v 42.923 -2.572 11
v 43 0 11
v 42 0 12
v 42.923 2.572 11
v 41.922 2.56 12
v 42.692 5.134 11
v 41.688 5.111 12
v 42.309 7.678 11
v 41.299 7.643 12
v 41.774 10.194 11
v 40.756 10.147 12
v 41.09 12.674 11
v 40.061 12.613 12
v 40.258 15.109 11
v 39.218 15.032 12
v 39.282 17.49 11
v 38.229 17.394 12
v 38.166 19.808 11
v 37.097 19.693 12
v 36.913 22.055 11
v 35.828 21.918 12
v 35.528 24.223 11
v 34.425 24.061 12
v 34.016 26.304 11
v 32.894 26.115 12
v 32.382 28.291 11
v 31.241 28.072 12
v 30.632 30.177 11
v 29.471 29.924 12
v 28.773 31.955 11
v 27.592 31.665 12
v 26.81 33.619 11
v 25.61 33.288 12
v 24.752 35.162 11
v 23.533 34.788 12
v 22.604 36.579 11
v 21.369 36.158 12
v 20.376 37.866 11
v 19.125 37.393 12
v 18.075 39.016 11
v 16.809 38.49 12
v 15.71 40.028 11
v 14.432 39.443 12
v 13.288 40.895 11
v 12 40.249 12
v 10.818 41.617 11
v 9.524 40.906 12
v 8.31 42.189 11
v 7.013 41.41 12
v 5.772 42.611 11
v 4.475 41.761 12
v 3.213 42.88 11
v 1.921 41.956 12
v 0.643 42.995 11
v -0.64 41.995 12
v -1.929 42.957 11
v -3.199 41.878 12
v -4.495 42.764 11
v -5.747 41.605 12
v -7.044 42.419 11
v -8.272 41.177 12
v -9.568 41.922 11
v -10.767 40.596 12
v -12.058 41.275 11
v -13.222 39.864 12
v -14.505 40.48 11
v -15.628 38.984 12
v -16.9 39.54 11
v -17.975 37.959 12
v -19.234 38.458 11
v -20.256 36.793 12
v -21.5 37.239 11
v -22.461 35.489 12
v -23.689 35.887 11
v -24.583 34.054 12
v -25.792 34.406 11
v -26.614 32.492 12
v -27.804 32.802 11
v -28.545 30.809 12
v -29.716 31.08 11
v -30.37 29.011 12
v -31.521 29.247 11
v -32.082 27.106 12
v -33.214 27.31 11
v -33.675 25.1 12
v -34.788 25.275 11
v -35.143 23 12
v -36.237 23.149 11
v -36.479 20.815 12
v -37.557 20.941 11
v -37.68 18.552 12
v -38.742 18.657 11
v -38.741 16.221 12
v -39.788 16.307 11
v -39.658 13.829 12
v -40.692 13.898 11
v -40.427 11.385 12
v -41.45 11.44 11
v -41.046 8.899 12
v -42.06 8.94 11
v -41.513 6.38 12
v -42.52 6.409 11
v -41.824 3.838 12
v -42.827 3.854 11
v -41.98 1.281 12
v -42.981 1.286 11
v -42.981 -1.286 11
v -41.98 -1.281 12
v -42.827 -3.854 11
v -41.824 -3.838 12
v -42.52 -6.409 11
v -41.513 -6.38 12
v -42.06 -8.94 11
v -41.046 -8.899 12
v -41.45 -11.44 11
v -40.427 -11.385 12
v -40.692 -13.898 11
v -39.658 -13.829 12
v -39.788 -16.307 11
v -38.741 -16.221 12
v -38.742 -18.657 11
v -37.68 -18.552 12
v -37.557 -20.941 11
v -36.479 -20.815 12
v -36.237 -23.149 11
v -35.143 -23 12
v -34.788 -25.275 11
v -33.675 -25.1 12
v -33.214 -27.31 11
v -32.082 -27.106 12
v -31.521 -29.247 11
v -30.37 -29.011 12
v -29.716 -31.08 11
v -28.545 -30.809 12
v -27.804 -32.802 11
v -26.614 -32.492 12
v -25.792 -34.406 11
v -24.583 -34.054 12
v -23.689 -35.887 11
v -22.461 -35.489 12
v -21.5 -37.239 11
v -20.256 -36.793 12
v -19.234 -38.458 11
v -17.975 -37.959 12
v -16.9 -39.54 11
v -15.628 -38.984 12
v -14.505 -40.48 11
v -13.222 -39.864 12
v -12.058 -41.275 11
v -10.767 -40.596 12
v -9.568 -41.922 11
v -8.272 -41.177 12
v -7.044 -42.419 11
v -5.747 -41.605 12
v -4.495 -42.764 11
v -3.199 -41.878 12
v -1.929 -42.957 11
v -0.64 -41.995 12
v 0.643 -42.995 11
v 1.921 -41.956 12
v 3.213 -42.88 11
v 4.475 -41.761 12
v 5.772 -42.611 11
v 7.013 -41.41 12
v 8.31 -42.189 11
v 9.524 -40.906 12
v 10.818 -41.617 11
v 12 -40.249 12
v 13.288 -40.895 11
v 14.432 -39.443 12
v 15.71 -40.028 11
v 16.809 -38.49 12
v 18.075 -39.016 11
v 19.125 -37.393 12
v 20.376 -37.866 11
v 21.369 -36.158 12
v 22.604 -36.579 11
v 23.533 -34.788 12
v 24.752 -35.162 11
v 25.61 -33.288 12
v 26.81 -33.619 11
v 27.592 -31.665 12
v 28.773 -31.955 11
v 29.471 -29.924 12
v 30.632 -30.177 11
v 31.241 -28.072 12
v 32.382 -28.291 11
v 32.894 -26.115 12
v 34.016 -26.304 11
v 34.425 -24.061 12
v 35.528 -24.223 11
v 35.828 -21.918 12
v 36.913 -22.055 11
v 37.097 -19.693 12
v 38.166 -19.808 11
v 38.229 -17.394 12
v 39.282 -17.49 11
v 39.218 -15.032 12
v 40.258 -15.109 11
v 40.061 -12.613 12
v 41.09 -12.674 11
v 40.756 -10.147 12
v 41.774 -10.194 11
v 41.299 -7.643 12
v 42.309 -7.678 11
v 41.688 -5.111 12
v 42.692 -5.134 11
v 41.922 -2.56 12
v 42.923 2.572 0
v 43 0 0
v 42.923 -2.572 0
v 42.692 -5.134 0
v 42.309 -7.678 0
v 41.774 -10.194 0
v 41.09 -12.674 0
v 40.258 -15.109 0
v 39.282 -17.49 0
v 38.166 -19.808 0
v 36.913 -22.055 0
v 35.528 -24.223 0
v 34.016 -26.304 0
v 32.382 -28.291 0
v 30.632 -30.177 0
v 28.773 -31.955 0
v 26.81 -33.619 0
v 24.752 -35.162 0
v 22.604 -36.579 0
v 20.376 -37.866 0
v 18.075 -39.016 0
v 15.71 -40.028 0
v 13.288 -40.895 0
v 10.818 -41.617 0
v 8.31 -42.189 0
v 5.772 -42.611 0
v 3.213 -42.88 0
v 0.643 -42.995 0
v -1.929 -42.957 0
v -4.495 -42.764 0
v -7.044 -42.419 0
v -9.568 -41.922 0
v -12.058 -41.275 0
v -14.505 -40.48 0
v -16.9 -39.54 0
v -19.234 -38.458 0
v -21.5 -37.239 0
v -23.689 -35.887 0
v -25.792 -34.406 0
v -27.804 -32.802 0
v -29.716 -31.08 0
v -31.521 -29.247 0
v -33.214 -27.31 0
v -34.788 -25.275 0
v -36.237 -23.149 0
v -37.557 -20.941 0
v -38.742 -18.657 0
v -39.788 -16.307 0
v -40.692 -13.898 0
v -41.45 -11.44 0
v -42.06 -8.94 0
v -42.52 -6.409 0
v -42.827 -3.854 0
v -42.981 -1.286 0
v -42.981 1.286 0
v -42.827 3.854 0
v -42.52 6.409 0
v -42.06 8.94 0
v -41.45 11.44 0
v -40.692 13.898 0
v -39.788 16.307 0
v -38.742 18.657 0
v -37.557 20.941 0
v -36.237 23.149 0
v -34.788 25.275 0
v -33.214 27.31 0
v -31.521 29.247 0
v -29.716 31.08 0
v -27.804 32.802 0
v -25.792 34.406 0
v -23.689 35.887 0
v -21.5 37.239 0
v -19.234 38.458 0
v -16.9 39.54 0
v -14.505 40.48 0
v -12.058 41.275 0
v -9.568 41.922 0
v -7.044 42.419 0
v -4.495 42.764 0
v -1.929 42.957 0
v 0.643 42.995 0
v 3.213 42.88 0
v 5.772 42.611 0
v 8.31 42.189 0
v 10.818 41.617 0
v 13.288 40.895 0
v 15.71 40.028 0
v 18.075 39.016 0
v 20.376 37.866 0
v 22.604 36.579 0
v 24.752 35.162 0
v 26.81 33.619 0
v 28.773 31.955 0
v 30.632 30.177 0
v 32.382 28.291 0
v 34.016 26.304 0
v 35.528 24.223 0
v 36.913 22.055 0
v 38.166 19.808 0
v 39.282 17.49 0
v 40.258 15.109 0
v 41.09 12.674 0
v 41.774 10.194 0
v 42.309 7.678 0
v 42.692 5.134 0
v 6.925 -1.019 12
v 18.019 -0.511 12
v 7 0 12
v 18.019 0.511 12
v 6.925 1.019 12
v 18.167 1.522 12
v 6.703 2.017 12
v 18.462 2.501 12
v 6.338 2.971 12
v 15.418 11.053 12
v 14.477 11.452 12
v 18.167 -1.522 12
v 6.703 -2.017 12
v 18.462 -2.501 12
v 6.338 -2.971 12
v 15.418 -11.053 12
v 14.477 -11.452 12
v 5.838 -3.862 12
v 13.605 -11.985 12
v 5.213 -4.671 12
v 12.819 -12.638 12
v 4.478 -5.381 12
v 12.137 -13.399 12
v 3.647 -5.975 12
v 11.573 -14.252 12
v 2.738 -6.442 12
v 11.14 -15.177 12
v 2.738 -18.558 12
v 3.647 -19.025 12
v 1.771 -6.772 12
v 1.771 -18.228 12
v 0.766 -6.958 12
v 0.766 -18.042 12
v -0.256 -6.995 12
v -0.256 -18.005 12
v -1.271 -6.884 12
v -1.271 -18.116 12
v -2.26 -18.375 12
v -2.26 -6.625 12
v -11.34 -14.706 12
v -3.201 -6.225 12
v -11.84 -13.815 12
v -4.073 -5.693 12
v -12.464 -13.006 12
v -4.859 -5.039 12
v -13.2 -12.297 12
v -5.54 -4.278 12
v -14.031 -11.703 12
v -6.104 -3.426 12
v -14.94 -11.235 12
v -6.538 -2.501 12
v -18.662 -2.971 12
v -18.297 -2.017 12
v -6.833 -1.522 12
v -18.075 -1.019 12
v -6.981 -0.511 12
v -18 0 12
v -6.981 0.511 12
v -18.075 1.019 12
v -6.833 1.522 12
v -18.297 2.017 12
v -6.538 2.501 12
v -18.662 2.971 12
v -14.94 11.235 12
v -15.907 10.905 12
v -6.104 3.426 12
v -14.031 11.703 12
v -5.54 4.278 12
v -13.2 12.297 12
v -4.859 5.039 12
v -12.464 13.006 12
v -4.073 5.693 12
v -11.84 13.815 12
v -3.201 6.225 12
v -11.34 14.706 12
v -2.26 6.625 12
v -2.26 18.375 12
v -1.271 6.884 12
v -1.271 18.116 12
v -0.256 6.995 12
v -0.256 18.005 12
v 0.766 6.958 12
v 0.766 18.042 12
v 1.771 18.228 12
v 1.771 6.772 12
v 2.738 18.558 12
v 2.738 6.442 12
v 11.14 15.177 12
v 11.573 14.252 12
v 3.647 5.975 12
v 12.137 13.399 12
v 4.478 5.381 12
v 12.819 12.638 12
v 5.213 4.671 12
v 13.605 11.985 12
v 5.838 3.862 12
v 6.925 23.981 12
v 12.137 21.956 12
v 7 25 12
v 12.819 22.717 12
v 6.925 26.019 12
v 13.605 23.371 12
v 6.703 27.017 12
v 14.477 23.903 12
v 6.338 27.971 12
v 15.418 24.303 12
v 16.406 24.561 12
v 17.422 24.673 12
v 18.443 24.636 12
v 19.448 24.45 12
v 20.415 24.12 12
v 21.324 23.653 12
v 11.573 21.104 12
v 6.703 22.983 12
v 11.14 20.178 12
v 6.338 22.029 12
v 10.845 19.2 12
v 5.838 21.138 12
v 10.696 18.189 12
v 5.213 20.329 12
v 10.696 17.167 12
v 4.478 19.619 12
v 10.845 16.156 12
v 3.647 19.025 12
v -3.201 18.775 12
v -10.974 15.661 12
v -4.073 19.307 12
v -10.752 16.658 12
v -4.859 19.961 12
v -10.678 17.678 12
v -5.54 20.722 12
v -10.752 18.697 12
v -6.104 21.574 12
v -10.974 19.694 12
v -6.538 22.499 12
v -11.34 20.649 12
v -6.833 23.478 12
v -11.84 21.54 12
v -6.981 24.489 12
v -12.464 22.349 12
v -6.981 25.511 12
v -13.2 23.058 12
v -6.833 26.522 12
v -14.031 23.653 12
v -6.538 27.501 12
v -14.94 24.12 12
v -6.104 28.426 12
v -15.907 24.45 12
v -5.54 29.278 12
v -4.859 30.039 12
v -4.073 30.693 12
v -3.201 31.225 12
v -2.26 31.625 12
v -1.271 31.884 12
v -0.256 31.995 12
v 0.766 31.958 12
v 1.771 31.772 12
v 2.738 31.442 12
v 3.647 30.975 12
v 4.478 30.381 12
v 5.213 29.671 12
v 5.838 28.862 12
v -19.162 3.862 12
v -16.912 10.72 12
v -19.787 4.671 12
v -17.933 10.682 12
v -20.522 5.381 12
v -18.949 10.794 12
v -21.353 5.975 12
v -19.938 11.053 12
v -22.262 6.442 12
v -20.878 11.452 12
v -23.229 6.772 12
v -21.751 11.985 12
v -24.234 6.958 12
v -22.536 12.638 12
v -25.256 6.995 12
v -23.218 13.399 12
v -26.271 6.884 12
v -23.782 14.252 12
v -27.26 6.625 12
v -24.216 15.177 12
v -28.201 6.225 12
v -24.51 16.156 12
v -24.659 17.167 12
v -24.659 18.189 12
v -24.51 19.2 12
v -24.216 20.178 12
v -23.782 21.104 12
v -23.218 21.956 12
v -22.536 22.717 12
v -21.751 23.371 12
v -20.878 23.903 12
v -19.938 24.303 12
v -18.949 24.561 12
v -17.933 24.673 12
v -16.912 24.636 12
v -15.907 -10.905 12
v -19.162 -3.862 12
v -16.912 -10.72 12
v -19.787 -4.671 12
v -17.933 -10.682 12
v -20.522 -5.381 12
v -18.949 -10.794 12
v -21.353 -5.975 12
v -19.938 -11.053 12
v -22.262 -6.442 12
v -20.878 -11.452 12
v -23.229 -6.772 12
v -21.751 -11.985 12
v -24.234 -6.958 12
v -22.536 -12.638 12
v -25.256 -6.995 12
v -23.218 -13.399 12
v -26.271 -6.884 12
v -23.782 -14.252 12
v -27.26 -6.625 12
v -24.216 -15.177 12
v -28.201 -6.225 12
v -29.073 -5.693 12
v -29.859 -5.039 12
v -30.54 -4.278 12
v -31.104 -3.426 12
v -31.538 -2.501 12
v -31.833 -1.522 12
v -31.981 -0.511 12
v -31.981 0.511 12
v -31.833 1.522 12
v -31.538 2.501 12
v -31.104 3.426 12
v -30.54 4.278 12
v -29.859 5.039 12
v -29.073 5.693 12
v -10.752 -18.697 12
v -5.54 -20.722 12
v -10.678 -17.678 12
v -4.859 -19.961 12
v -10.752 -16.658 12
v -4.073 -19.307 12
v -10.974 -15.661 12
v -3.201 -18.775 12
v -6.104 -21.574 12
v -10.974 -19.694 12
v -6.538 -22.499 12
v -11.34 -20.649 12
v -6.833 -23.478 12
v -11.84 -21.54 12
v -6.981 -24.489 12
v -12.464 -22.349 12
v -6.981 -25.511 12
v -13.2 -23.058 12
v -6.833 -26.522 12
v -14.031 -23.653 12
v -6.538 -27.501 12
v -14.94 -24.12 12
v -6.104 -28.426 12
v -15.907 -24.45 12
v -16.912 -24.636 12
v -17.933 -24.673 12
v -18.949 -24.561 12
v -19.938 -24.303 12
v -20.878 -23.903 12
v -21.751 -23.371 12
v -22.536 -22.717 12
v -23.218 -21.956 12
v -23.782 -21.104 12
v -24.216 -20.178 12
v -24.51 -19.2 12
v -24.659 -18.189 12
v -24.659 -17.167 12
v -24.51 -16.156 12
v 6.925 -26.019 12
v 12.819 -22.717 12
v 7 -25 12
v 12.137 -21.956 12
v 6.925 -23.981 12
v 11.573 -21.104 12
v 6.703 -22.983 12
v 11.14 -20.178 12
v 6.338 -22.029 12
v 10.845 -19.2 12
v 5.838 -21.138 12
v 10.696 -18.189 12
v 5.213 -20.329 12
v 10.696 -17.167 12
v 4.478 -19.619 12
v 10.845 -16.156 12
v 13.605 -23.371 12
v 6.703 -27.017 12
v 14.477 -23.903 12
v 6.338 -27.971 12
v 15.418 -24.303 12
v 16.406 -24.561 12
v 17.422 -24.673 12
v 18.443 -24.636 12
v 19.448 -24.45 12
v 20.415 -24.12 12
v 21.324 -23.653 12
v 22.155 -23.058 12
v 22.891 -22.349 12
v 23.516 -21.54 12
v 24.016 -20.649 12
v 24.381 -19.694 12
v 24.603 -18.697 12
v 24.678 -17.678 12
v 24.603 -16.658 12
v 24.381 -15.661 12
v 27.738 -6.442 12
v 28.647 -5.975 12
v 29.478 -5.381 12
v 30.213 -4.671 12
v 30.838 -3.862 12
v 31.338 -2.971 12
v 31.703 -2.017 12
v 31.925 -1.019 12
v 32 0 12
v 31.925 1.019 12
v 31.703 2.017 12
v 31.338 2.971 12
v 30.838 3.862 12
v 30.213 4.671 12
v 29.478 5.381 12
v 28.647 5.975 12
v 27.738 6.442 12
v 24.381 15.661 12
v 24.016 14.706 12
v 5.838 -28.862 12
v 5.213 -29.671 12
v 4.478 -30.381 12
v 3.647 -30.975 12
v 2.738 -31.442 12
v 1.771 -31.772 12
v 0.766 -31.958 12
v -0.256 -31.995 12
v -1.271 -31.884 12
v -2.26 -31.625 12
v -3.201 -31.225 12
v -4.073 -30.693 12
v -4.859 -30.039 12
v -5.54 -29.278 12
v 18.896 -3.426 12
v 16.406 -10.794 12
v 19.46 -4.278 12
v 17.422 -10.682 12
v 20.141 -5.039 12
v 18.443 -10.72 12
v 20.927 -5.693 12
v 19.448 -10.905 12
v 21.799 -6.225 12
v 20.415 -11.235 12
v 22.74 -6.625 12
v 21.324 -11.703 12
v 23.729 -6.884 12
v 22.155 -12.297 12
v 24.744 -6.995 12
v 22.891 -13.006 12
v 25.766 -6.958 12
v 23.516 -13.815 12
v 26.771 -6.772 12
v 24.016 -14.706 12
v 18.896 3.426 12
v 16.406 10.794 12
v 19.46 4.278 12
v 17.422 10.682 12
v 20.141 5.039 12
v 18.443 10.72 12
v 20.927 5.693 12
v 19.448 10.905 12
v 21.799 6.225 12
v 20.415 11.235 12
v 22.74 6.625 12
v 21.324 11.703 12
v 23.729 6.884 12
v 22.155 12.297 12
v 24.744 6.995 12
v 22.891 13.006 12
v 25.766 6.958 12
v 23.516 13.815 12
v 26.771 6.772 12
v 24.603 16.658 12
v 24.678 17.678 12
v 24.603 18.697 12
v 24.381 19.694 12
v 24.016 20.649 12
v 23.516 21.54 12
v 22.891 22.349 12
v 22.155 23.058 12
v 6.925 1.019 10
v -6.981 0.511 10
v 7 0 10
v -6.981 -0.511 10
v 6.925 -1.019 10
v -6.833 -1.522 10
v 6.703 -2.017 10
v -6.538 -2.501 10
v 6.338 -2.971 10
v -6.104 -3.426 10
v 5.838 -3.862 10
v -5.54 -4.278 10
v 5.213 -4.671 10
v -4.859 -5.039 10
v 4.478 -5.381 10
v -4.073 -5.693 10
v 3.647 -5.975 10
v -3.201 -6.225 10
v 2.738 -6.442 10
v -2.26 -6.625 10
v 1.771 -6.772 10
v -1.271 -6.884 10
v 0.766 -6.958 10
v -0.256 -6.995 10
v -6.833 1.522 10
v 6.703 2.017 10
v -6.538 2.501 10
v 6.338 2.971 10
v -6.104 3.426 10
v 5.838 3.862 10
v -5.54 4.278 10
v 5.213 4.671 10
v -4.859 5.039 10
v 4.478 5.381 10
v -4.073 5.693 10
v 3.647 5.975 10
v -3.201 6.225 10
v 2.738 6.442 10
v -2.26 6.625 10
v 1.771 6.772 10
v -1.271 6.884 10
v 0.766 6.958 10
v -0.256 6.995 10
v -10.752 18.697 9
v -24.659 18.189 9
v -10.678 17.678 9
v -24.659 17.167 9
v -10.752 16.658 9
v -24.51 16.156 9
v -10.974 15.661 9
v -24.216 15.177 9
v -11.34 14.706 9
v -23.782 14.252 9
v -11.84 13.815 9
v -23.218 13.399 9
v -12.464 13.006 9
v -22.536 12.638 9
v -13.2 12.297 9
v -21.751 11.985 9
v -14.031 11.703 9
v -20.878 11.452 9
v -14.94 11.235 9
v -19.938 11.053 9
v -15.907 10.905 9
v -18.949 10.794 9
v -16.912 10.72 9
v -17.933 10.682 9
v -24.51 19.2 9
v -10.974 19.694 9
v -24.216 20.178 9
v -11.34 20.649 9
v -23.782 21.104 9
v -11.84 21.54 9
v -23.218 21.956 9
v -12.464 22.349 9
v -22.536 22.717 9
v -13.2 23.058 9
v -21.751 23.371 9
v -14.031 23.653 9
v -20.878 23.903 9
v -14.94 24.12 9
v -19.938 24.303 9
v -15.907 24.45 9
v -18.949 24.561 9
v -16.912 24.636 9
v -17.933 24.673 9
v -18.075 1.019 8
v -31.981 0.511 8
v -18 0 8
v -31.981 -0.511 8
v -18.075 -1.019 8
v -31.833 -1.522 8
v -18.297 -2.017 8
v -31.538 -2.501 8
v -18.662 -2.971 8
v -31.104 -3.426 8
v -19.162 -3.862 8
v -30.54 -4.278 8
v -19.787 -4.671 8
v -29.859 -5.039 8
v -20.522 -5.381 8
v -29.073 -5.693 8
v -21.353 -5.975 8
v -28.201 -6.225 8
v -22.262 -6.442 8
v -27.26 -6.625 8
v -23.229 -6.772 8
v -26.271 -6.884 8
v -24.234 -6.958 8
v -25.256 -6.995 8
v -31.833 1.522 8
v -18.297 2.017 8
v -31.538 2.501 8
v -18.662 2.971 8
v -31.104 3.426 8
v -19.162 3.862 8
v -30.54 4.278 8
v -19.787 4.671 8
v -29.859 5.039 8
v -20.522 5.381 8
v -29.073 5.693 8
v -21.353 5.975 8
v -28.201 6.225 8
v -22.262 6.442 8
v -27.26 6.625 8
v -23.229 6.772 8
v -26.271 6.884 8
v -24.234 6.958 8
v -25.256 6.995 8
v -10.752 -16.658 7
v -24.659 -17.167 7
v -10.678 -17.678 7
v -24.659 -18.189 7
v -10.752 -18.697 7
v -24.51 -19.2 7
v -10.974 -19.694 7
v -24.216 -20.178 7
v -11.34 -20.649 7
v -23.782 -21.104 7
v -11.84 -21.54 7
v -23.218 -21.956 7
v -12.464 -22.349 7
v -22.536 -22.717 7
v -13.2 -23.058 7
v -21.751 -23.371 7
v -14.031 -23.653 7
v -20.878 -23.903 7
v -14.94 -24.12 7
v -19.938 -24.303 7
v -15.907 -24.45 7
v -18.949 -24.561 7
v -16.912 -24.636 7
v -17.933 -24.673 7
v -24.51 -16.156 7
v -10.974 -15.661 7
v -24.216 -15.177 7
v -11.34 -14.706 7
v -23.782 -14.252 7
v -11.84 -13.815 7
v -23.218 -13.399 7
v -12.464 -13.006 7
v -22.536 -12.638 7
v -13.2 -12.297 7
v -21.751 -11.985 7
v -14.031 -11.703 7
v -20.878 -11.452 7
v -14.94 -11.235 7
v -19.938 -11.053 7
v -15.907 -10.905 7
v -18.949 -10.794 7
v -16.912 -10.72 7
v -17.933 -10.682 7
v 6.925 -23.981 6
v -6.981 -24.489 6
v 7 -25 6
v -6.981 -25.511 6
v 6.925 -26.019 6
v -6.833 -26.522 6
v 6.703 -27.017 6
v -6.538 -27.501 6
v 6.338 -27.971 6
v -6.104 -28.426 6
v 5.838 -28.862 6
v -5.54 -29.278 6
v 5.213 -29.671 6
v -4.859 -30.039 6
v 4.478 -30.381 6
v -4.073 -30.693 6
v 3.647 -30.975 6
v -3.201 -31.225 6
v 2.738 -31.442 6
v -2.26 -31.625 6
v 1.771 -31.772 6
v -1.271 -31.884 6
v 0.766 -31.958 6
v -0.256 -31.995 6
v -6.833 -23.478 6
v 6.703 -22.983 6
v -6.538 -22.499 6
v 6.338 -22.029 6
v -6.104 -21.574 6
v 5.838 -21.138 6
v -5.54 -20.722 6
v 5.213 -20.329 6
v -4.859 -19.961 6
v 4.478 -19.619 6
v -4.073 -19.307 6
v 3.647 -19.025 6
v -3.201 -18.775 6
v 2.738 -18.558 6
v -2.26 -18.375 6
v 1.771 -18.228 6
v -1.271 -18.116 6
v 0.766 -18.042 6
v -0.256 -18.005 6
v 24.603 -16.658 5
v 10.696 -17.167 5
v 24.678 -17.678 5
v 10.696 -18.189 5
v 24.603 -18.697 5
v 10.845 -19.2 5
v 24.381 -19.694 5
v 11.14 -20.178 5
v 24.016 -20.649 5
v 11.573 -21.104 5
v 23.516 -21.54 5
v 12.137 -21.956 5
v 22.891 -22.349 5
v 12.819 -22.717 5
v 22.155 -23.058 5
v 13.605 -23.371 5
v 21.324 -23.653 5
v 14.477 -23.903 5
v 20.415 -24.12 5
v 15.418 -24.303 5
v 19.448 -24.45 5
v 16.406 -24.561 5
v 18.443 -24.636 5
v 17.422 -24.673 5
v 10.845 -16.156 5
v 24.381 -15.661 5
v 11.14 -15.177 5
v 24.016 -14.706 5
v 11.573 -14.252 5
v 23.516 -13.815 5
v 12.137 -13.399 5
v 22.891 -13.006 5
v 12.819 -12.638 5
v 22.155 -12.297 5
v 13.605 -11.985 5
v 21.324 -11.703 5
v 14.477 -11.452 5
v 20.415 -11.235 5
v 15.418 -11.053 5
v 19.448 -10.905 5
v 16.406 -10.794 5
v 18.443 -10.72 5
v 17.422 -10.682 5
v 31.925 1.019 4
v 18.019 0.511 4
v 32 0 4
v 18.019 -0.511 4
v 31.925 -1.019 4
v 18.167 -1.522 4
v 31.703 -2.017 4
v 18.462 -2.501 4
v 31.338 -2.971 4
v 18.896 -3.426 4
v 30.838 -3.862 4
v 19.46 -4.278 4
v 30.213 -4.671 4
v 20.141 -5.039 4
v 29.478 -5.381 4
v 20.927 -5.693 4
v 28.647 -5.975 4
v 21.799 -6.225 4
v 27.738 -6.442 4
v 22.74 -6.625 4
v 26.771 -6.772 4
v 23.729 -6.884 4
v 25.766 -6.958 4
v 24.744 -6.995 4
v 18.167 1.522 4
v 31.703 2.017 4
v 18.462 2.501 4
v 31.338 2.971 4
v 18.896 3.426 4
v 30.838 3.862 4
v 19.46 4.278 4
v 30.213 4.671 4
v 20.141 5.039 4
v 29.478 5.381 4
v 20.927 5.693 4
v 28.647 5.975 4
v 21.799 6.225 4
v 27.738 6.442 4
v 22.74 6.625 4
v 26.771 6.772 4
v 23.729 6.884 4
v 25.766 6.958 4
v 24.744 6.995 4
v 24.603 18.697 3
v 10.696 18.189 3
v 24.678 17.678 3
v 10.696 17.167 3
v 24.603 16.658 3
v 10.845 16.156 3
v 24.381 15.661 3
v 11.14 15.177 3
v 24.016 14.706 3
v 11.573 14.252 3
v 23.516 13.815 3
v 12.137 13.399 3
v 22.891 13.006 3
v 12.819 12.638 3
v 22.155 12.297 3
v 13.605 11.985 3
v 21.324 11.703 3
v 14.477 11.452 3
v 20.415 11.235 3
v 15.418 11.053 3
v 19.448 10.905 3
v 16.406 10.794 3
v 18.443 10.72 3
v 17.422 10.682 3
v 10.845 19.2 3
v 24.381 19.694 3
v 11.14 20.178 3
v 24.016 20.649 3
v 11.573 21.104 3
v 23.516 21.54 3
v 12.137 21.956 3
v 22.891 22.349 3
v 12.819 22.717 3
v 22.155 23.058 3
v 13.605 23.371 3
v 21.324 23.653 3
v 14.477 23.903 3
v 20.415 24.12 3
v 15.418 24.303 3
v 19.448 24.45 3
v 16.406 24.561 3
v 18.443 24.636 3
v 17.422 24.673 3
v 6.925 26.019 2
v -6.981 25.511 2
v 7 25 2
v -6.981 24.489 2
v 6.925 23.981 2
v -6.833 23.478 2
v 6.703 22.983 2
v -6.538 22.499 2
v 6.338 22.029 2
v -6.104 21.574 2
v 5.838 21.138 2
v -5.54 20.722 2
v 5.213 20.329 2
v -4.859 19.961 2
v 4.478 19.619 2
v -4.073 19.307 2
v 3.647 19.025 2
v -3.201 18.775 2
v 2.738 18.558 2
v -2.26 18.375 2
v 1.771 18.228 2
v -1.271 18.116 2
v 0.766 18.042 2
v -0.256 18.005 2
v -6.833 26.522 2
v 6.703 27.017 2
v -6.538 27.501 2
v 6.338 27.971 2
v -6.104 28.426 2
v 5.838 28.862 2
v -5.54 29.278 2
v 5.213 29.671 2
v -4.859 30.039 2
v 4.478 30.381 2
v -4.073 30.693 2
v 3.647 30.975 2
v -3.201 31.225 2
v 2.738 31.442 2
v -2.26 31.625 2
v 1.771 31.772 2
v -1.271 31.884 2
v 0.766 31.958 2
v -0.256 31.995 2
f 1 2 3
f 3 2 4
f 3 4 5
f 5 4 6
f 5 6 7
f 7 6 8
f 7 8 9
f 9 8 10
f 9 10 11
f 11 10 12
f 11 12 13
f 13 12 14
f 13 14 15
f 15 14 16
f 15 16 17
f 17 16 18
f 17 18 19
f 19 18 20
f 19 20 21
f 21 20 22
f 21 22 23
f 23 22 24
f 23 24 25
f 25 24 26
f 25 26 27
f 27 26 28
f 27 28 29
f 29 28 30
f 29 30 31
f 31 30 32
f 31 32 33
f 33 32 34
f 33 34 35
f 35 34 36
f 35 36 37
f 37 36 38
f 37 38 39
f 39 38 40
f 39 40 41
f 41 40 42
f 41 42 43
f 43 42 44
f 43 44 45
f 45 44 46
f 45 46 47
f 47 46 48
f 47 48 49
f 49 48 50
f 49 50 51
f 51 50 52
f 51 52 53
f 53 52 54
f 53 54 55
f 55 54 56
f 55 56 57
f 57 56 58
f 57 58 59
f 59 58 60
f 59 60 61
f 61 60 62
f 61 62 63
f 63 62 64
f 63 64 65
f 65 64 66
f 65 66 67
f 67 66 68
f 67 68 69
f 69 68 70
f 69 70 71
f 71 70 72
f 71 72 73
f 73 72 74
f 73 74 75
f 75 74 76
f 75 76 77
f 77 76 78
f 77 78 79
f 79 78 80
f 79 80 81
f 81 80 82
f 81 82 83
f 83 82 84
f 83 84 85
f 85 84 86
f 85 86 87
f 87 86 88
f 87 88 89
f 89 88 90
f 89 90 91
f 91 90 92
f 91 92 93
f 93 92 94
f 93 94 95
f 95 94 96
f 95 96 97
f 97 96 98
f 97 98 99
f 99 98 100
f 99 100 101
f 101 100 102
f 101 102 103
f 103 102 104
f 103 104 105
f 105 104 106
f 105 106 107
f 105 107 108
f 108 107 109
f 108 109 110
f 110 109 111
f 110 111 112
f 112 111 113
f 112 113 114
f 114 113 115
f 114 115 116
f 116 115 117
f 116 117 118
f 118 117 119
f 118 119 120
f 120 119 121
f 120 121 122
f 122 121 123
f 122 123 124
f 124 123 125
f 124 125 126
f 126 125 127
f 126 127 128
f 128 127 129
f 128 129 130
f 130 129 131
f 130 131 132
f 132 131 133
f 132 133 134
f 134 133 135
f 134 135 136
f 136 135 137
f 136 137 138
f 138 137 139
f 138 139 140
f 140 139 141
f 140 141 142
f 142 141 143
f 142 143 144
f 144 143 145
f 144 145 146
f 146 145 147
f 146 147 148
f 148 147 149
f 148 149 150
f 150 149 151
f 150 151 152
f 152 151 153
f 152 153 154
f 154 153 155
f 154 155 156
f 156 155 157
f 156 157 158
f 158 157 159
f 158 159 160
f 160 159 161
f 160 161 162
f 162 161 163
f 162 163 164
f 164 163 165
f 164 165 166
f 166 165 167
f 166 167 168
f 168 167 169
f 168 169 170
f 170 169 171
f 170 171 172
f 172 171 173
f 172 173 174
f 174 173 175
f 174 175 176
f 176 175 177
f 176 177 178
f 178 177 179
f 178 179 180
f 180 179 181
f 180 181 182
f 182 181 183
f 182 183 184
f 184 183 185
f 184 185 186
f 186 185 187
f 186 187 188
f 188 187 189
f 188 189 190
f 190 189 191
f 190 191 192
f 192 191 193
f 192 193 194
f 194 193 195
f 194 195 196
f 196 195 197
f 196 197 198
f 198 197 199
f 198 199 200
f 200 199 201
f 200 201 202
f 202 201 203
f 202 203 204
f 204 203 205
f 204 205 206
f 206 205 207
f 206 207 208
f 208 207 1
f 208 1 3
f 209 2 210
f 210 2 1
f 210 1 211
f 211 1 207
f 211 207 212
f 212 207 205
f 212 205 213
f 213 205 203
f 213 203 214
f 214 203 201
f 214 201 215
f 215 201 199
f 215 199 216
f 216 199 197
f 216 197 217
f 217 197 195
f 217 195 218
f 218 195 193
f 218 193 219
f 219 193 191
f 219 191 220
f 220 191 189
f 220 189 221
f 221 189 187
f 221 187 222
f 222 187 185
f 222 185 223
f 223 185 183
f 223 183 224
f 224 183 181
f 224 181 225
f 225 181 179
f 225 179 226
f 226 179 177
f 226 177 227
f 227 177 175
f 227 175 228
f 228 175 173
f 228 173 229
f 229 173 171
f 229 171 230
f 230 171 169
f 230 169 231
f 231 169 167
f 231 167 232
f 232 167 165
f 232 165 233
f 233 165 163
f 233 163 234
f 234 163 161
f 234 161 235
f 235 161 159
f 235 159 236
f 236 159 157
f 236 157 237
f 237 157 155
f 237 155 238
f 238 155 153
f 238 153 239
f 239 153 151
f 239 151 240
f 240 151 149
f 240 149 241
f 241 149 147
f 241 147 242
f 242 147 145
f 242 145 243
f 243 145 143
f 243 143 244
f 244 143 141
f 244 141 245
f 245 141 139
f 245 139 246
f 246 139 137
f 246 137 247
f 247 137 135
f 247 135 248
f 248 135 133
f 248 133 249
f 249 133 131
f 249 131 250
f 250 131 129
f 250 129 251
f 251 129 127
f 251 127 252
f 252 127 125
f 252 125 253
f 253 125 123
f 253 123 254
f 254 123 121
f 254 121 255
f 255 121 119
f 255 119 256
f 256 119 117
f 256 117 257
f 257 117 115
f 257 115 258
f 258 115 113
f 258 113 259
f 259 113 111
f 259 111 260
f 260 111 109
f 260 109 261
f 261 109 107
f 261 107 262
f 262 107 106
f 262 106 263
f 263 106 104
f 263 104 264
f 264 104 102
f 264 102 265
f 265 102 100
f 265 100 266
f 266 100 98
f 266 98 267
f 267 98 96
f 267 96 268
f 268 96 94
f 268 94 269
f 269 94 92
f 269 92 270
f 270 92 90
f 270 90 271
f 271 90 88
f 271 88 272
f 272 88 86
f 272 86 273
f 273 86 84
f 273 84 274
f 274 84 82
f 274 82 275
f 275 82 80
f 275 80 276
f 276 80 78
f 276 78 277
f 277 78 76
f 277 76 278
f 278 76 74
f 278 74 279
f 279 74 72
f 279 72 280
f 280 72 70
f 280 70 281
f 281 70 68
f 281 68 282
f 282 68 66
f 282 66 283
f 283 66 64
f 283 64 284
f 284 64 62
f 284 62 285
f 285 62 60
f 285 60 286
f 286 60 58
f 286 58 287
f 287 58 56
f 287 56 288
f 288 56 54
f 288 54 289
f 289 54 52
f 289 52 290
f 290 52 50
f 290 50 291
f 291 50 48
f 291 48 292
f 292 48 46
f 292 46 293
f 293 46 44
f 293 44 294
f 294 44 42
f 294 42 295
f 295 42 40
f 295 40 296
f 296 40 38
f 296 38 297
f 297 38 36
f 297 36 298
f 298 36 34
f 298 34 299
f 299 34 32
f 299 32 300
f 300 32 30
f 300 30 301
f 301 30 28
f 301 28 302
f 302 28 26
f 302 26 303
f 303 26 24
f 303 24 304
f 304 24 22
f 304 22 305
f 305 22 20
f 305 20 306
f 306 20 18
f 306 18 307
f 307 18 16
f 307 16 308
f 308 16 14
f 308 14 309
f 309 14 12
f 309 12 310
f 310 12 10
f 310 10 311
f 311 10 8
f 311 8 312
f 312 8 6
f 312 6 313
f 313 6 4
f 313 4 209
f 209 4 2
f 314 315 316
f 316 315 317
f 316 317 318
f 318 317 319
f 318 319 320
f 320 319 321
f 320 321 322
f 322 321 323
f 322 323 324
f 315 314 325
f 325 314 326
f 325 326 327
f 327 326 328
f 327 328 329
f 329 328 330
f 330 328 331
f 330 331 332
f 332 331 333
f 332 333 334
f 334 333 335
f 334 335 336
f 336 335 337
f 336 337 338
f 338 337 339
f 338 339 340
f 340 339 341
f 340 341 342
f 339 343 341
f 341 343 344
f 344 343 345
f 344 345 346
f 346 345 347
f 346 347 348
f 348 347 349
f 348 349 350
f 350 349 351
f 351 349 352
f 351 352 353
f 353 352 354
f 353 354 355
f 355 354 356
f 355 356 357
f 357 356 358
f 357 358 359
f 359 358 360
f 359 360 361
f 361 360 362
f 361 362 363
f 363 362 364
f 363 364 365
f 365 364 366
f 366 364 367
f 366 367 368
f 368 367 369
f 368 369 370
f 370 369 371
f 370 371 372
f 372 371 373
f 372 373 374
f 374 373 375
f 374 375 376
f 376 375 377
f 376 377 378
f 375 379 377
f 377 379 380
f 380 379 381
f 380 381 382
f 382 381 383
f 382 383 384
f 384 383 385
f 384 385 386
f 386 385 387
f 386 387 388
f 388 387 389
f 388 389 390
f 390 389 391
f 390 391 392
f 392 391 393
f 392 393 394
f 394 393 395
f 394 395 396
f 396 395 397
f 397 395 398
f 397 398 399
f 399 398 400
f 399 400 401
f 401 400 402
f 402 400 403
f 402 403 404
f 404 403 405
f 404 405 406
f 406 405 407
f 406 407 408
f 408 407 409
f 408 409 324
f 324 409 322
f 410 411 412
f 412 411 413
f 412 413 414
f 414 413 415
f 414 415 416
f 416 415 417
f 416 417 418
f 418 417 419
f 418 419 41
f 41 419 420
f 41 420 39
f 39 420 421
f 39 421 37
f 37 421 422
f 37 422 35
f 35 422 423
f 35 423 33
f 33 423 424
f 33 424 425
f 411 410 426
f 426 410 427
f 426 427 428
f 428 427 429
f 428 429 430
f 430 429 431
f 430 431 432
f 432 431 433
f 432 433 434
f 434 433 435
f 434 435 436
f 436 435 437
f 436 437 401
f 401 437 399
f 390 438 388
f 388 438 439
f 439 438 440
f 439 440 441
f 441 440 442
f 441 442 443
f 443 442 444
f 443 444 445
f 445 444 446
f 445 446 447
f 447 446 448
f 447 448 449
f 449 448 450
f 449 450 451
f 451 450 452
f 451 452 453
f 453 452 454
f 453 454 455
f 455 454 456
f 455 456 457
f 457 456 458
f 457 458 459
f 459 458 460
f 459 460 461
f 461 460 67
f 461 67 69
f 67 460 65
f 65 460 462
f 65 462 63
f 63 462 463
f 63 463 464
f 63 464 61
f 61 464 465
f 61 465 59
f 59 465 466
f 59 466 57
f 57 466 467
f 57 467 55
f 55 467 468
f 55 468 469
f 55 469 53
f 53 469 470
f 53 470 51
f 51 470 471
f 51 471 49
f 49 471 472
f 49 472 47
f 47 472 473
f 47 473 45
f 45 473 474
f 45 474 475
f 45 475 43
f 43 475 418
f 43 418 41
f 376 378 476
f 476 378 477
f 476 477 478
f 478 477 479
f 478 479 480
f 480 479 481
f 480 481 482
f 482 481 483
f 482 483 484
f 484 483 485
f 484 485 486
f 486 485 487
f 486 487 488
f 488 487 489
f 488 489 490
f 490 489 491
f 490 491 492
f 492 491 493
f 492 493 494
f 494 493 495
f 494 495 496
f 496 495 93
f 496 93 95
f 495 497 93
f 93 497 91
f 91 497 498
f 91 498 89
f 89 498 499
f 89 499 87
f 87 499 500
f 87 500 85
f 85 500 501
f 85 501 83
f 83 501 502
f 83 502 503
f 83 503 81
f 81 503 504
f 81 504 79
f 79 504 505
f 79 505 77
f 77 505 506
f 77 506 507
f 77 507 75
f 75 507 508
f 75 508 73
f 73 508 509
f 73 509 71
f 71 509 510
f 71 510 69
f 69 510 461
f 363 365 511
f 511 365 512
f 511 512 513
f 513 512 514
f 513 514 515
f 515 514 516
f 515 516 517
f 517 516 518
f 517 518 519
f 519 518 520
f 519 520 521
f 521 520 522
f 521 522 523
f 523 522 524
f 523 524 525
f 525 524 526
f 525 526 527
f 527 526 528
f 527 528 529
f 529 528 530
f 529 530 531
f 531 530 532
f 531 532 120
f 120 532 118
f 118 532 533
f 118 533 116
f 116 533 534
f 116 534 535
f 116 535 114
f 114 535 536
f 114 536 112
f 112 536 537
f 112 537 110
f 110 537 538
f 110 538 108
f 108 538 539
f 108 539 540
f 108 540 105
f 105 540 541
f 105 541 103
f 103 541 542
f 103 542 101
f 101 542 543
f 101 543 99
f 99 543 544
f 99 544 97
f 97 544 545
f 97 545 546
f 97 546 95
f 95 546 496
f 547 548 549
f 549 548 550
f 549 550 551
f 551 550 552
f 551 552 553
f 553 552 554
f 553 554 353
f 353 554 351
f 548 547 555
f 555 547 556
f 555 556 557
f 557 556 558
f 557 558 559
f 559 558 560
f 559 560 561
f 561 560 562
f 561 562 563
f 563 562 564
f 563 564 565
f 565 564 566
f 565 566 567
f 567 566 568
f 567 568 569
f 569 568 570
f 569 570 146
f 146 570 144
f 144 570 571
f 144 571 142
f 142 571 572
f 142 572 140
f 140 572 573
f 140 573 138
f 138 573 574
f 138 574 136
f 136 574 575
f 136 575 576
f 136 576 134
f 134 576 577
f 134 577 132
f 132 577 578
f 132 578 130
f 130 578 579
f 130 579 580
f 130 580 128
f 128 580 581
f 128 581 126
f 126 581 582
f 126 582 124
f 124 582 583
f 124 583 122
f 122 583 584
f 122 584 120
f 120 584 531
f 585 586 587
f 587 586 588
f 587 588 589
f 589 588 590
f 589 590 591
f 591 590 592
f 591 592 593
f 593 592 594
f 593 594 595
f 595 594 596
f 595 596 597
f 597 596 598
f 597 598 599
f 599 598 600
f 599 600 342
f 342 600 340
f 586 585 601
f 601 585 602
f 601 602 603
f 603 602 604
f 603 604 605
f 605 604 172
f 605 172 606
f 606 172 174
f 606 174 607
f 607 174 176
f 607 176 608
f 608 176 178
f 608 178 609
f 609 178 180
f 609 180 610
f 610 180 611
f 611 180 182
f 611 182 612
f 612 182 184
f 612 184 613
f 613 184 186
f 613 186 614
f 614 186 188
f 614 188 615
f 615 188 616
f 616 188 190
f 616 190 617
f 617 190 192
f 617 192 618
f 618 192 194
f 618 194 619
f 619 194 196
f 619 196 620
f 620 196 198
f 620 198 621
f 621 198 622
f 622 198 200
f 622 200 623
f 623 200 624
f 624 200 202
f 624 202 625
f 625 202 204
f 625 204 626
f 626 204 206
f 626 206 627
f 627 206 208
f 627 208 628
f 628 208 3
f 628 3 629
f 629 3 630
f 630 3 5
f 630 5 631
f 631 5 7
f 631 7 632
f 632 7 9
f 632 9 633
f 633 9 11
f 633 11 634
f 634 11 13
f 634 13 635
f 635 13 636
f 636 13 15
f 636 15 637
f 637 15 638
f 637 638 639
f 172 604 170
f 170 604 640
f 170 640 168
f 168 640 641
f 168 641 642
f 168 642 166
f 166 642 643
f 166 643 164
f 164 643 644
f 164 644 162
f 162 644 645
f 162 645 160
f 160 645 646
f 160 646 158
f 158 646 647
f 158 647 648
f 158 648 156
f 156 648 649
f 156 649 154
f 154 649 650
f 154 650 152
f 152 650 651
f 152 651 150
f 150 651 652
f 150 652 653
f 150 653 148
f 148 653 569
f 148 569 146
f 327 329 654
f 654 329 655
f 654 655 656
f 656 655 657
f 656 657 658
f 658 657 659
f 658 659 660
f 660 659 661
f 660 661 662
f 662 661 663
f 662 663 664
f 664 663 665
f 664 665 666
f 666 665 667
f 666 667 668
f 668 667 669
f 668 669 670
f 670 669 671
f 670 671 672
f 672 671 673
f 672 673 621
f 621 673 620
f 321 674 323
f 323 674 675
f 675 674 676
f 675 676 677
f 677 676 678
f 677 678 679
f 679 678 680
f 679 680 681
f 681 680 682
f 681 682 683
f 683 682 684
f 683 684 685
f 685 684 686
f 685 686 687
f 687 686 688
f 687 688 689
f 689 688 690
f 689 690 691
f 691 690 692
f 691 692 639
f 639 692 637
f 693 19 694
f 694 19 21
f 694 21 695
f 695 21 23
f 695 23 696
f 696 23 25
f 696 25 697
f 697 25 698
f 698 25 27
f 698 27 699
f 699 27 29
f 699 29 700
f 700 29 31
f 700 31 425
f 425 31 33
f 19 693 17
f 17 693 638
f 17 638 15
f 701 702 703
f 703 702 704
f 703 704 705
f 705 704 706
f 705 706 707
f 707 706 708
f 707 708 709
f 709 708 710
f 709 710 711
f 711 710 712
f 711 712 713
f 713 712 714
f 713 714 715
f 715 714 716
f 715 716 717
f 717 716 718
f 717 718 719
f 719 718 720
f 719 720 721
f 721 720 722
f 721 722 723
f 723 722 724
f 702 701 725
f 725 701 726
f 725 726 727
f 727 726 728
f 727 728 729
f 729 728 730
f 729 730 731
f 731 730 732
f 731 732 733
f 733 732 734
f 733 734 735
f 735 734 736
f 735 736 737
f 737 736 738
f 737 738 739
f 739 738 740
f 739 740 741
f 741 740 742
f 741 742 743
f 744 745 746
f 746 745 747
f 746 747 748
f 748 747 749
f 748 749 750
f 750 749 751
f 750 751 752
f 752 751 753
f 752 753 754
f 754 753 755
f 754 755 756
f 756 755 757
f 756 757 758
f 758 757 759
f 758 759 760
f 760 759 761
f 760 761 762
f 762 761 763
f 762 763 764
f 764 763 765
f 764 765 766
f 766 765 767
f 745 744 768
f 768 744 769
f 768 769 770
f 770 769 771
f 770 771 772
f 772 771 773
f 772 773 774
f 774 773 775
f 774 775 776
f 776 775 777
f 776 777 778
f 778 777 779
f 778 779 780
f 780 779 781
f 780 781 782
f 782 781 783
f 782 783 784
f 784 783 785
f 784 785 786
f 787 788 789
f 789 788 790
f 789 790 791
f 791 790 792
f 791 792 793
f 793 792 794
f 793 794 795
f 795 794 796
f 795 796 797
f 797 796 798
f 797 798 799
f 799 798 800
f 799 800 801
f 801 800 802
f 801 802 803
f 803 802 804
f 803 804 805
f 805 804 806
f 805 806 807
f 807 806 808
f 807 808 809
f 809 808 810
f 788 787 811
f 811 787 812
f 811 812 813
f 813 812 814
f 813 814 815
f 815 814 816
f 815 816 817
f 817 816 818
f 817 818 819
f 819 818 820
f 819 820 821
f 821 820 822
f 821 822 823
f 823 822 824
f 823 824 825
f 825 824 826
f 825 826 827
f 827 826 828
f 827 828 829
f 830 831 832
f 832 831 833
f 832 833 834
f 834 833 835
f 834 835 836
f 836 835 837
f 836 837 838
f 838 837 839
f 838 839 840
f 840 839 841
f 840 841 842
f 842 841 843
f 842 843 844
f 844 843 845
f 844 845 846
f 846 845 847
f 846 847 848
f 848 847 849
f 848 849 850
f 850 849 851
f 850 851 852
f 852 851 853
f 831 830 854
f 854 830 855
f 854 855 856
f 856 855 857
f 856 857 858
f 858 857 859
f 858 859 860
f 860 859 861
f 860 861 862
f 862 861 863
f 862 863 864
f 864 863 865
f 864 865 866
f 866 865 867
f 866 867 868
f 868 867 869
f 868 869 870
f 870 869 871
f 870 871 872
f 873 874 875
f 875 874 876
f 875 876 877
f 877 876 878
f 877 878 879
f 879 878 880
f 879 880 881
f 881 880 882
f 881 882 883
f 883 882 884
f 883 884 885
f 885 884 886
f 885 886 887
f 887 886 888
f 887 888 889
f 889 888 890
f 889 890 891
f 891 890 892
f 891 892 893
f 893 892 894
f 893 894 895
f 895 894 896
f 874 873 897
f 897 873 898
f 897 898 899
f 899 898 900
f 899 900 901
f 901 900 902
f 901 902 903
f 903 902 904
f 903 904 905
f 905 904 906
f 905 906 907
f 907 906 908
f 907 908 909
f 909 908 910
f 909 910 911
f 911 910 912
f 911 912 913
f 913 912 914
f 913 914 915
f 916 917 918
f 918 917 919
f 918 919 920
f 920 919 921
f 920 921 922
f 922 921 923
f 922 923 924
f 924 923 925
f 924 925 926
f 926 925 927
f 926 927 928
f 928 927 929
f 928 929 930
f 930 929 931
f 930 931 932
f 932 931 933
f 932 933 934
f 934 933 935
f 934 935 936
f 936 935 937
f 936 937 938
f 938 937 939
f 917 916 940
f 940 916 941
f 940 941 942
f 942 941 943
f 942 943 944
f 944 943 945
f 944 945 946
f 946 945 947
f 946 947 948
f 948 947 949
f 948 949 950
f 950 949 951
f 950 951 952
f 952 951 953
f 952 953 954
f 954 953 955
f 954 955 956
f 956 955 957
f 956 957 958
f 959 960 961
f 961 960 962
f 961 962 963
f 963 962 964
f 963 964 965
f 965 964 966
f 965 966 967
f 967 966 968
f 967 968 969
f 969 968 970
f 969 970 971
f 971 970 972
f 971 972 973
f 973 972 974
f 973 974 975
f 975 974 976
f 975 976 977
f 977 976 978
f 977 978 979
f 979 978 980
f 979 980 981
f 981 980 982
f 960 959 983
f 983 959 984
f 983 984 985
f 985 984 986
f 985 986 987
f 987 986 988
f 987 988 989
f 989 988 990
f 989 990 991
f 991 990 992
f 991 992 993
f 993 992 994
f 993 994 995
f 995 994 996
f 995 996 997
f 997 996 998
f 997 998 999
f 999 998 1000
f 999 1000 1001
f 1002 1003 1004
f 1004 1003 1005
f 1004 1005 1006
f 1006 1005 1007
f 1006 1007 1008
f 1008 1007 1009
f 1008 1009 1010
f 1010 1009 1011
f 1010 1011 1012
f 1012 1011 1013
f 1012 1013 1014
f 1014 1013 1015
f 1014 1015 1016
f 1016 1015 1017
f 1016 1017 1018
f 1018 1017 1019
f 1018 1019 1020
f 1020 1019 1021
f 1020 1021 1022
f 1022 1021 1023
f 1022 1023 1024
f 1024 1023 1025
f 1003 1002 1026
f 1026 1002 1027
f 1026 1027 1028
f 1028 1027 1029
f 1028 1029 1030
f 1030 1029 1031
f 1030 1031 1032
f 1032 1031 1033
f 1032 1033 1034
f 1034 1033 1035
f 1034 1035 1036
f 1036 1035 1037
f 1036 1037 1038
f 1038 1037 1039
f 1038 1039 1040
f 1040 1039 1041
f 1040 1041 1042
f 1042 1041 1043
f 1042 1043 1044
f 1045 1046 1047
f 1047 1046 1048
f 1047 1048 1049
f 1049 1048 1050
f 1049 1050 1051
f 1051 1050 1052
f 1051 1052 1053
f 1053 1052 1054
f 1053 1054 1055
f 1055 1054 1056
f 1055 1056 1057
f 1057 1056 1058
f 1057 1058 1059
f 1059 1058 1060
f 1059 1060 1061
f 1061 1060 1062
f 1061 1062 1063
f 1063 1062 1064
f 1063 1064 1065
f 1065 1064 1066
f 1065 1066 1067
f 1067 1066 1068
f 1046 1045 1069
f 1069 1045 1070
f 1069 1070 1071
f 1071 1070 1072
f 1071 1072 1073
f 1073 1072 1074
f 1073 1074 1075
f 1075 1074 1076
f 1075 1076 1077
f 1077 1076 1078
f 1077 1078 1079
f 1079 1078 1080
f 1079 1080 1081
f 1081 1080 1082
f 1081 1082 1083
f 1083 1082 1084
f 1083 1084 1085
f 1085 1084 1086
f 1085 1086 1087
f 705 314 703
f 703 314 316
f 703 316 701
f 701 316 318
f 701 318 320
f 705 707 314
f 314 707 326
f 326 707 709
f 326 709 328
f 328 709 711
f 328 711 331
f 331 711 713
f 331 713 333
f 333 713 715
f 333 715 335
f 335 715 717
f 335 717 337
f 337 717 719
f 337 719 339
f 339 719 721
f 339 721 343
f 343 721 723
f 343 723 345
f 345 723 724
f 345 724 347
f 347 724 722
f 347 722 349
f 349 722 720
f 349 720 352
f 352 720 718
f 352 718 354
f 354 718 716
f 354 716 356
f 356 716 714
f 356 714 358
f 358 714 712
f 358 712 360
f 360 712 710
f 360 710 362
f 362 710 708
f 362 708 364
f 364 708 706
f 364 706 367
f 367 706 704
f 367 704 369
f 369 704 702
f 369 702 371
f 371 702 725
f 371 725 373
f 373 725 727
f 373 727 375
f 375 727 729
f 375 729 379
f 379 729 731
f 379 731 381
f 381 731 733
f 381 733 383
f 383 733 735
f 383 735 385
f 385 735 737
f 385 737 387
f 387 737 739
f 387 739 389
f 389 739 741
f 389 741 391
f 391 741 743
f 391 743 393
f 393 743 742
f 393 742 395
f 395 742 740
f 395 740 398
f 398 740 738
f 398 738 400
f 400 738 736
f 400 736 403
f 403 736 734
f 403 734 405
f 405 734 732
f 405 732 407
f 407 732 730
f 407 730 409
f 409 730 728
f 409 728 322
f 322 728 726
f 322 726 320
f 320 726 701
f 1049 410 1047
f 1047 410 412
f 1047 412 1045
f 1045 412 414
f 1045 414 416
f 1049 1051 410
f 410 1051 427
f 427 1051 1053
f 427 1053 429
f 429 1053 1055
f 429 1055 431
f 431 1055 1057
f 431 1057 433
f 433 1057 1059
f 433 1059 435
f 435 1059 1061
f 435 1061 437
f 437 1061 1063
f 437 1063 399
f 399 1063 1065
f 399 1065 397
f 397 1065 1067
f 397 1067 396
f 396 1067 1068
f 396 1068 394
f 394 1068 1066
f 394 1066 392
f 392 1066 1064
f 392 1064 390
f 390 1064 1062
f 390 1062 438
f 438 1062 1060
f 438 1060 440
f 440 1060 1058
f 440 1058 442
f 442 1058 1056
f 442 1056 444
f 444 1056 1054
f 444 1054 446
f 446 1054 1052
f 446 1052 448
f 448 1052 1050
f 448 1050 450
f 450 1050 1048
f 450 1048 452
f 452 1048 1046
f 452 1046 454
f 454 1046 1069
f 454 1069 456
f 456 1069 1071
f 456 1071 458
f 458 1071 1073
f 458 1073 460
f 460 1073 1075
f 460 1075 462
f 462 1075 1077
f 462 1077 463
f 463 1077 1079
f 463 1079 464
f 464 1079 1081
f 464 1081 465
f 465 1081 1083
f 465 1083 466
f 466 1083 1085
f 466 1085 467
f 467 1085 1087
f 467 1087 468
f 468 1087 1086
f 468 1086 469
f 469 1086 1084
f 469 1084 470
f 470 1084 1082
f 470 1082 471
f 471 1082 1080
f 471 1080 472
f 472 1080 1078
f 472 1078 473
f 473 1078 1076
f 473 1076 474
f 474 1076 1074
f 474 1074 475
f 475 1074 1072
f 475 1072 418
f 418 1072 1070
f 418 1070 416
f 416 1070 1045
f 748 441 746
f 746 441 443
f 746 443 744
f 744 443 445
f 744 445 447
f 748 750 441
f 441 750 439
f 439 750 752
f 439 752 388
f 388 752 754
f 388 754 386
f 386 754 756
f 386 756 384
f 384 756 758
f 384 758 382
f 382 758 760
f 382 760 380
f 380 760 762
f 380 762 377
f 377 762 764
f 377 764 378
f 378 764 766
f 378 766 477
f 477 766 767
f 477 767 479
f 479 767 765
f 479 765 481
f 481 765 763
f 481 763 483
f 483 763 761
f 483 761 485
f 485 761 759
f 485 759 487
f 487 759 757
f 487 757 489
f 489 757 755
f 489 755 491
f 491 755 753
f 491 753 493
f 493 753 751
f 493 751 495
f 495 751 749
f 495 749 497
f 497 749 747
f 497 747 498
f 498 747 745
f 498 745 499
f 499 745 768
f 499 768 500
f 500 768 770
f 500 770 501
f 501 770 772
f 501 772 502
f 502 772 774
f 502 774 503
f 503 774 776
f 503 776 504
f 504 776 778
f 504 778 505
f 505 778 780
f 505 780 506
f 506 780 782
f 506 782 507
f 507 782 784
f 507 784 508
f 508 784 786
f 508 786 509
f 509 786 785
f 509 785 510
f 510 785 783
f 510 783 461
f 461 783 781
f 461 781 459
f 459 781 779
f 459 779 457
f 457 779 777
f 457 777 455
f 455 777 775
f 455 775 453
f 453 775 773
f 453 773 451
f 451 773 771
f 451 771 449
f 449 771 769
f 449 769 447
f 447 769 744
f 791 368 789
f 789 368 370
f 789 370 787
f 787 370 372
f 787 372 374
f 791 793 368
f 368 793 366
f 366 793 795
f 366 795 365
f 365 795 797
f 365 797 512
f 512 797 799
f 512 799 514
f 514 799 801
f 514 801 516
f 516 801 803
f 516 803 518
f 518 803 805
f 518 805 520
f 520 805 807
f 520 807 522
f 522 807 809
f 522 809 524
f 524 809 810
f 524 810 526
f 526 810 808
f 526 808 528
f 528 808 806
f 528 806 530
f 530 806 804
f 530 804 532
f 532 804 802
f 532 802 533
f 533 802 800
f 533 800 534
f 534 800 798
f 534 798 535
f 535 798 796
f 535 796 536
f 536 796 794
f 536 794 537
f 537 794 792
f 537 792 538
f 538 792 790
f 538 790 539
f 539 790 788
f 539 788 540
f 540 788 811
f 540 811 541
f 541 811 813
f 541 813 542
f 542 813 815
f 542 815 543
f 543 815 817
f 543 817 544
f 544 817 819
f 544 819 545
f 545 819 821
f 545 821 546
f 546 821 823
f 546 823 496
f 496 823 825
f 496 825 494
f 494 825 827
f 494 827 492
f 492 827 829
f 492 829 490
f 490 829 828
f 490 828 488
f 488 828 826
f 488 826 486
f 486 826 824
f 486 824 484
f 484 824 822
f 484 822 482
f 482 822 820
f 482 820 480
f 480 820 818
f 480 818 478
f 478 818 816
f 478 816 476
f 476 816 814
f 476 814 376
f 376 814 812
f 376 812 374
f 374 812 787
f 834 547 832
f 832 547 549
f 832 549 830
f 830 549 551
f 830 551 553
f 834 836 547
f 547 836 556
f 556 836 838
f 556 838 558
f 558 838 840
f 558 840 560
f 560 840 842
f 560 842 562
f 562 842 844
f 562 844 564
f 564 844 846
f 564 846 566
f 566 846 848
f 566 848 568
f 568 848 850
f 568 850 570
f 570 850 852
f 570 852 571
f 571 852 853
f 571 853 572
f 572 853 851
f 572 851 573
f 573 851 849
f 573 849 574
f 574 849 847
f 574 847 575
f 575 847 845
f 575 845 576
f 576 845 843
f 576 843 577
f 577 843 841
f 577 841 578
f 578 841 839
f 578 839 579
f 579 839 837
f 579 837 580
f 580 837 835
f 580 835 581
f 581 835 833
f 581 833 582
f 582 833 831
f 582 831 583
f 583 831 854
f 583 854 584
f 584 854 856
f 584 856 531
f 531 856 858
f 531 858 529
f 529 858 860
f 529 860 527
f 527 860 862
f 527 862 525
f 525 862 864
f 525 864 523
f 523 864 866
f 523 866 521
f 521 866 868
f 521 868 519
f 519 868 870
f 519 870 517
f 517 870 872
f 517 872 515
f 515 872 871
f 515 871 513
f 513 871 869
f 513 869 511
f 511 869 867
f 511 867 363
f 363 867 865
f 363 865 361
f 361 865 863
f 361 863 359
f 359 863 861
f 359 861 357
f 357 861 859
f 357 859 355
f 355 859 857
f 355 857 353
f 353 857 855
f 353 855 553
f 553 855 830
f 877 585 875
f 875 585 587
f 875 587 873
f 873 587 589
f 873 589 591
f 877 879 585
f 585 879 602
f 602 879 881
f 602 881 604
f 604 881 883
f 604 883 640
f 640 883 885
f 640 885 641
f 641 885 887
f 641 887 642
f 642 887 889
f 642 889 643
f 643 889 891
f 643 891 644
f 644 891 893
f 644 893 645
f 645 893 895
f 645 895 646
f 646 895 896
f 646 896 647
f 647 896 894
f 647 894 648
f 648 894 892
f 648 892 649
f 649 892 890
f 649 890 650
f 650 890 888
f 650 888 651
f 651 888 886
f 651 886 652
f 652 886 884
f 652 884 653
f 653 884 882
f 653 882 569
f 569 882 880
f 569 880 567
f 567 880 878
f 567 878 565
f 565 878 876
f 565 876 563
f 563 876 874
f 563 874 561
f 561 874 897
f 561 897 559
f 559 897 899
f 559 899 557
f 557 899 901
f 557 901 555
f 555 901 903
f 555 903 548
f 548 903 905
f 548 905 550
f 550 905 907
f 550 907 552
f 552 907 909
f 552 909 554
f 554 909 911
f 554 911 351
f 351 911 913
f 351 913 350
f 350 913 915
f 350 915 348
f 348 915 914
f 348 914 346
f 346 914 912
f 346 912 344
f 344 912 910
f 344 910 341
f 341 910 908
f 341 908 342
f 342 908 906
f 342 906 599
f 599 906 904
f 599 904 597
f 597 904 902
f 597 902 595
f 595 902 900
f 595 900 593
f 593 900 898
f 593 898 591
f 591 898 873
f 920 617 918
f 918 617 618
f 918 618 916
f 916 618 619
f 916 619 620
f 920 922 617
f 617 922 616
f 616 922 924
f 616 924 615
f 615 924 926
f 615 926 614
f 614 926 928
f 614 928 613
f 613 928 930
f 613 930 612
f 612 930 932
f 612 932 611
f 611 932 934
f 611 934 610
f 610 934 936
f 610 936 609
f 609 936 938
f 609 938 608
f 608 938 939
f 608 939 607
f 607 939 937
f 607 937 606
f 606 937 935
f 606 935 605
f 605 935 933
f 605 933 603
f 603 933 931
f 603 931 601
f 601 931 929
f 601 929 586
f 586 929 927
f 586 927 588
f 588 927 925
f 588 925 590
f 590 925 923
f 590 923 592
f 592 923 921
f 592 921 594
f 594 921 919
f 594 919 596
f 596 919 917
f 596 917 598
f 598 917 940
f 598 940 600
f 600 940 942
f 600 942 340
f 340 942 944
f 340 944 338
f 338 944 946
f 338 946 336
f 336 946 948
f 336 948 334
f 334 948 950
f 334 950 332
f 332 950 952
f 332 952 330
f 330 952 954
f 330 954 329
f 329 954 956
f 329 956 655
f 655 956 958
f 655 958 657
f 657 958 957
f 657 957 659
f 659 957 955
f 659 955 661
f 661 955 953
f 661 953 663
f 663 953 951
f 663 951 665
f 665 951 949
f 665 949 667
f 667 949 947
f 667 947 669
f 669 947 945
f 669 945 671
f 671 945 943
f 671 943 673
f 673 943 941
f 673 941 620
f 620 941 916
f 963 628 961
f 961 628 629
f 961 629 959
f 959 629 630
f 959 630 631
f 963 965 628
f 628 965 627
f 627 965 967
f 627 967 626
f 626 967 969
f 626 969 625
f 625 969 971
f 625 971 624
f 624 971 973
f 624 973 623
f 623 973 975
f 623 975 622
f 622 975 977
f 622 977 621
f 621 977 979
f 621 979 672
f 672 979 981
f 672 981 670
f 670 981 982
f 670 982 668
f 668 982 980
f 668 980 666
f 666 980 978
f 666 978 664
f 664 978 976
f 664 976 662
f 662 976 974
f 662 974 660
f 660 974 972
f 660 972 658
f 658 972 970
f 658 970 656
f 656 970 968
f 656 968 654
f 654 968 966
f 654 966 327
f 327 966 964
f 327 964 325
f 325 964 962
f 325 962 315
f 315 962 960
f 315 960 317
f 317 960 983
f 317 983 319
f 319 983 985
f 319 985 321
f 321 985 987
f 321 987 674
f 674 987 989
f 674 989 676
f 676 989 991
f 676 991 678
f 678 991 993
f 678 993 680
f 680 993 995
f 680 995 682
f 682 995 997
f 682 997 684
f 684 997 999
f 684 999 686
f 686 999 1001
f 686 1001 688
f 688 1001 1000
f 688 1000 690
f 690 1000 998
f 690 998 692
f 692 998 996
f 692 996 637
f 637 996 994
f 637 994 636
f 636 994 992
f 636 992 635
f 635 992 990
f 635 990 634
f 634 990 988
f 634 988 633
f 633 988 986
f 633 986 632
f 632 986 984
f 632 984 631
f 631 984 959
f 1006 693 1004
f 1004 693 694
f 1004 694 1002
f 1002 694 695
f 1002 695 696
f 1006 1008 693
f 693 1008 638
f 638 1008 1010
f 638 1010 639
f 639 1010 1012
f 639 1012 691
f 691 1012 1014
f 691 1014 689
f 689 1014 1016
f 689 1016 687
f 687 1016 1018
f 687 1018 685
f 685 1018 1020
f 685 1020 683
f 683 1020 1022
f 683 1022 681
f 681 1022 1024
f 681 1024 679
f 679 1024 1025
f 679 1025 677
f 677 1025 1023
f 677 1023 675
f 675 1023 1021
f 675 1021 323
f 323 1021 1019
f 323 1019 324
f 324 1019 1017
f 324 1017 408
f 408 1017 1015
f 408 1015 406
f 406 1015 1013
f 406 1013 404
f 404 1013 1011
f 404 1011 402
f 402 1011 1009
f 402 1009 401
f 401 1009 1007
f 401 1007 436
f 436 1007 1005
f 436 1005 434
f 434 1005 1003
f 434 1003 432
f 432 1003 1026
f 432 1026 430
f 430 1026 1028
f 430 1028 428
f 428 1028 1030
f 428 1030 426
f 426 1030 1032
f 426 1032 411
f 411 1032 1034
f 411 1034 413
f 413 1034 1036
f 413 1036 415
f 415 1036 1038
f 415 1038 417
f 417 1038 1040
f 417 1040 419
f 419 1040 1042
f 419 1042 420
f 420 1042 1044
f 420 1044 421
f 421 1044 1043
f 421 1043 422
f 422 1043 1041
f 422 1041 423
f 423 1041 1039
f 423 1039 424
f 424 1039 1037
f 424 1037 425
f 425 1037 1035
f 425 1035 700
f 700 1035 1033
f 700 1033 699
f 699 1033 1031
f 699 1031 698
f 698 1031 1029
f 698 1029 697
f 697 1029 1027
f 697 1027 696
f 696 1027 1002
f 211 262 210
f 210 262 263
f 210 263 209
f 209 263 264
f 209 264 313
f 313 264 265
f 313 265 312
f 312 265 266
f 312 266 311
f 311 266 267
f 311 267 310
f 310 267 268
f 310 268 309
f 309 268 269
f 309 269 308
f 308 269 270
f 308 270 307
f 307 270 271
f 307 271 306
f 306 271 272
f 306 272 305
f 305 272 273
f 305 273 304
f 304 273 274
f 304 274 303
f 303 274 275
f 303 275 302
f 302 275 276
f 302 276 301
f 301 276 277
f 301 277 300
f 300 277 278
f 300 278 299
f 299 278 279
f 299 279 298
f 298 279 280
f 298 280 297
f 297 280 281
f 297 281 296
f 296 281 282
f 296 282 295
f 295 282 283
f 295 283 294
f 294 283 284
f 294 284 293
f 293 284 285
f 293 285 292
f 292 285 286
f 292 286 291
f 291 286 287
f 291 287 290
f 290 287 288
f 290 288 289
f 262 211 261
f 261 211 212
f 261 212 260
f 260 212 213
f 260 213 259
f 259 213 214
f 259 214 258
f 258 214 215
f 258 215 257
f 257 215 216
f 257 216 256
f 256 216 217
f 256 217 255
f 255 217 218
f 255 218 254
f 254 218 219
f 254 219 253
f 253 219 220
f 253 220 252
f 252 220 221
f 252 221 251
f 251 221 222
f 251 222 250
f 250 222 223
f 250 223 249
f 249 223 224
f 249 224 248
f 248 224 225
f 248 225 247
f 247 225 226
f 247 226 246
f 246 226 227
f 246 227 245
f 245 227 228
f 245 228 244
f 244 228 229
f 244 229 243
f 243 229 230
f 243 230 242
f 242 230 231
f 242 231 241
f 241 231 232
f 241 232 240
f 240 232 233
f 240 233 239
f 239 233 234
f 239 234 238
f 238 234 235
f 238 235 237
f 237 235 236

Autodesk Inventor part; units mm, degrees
ref_plane "YZ Plane" through (0, 0, 0) normal (1, 0, 0) x (0, 1, 0)
ref_plane "XZ Plane" through (0, 0, 0) normal (0, 1, 0) x (-1, 0, 0)
ref_plane "XY Plane" through (0, 0, 0) normal (0, 0, 1) x (1, 0, 0)
sketch "Sketch1" plane through (0, 0, 0) normal (0, 0, 1) x (1, 0, 0)
  circle A0 centre (0, 0) radius 43
  circle A1 centre (0, 0) radius 7
  circle A2 centre (0, 25) radius 7
  circle A3 centre (-17.6777, 17.6777) radius 7
  circle A4 centre (-25, 0) radius 7
  circle A5 centre (-17.6777, -17.6777) radius 7
  circle A6 centre (0, -25) radius 7
  circle A7 centre (17.6777, -17.6777) radius 7
  circle A8 centre (25, 0) radius 7
  circle A9 centre (17.6777, 17.6777) radius 7
  dimension "diameter" = 14
  dimension "d2" = 14
  dimension "d5" = 360
  dimension "d7" = 25
  dimension "d28" = 86
extrude "Extrusion1" add sketch "Sketch1" along normal blind 12
extrude "Extrusion2" add sketch "Sketch1" along normal blind 2 contours A2
extrude "Extrusion3" add sketch "Sketch1" along normal blind 3 contours A9
extrude "Extrusion4" add sketch "Sketch1" along normal blind 4 contours A8
extrude "Extrusion5" add sketch "Sketch1" along normal blind 5 contours A7
extrude "Extrusion6" add sketch "Sketch1" along normal blind 6 contours A6
extrude "Extrusion7" add sketch "Sketch1" along normal blind 7 contours A5
extrude "Extrusion8" add sketch "Sketch1" along normal blind 8 contours A4
extrude "Extrusion9" add sketch "Sketch1" along normal blind 9 contours A3
extrude "Extrusion10" add sketch "Sketch1" along normal blind 10 contours A1
sketch "Sketch2" plane through (0, 0, 12) normal (0, 0, 1) x (1, 0, 0)
  line L0 (-5.8774, 39.105) -> (5.7366, 39.105) construction
  line L1 (5.7366, 39.105) -> (5.7366, 35.936) construction
  line L2 (5.7366, 35.936) -> (-5.8774, 35.936) construction
  line L3 (-5.8774, 35.936) -> (-5.8774, 39.105) construction
  point P0 (0, 0)
emboss "Emboss1" [suppressed]
chamfer "Chamfer1" distance 1 angle 45 1 edges at (-43, 0, 12)
equation "\"d2\" = diameter"
properties part number "Diameter_14mm"
